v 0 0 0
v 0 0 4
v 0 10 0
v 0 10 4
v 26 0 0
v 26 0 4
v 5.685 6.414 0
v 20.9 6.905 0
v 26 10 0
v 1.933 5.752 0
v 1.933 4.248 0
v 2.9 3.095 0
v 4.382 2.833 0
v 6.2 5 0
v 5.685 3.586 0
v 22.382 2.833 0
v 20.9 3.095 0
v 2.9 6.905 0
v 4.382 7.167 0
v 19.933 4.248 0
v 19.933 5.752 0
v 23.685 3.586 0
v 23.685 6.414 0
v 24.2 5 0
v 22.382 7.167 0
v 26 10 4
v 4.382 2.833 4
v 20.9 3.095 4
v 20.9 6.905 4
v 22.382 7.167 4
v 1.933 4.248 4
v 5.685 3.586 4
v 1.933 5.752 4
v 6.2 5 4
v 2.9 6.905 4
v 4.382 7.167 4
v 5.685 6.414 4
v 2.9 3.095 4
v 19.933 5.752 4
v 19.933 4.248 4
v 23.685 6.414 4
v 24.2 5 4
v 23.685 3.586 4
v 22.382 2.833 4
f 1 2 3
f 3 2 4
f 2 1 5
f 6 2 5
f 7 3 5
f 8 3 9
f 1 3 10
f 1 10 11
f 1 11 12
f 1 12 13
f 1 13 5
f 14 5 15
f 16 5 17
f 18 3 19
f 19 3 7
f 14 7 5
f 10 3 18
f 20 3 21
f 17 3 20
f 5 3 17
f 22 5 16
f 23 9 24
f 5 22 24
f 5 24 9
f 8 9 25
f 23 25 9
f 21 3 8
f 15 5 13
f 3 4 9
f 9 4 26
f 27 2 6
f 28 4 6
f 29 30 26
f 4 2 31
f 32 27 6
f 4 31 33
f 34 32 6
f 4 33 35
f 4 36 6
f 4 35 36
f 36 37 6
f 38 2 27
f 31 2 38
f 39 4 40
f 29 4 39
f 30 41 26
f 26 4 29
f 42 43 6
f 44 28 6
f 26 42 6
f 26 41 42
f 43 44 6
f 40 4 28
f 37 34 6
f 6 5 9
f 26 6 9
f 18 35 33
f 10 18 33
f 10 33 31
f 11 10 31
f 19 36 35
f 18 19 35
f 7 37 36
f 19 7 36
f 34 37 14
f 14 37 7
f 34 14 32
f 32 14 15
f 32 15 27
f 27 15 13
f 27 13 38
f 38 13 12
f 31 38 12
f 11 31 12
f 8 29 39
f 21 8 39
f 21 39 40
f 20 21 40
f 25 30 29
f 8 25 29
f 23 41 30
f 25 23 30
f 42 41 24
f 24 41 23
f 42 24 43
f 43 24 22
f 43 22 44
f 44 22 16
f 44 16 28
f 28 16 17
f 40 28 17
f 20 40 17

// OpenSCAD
// file: configuration-metric.scad
// PRUSA Mendel  
// Metric Configuration file
// GNU GPL v2
// Josef Průša
// josefprusa@me.com
// prusadjs.cz
// http://www.reprap.org/wiki/Prusa_Mendel
// http://github.com/prusajr/PrusaMendel

// CONFIGURATION FILE FOR METRIC VARIANT OF PRUSA MENDEL

// M8 rod diameter
m8_diameter = 8.4;

// M8 nut diameter diameter
// Used for $fn nut trick -> cylinder(h = 5, r=m8_nut_diameter, $fn=6, center=true);
m8_nut_diameter = 16.4;

// M4 rod/screw diameter
m4_diameter = 5;

// M4 nut diameter
// Used for $fn nut trick -> cylinder(h = 5, r=m4_nut_diameter, $fn=6, center=true);
m4_nut_diameter = 9;

// M3 rod/screw diameter
m3_diameter = 4.4;

// M3 nut diameter diameter
// Used for $fn nut trick -> cylinder(h = 5, r=m3_nut_diameter, $fn=6, center=true);
m3_nut_diameter = 7;

// Bushing holders diameter
bushing_diameter = 11;

//Motor shaft diameter
motor_shaft=5;

//Bushings
	//Size of rod on which it will slide
	bushing_rodsize = 8;
	
	//Size of whole bushings (diameter because the core is cylinder)
	bushing_outerDiameter = 16;
	
	//How long they are going to be
	bushing_lenght = 11;
	
	// TYPE Can generate three versions
	// 1 - regular old ones
	// 2 - helical ones
	// 3 - holders for brass or any other bought bushings
	bushing_type = 2;
// file: configuration.scad
// PRUSA Mendel  
// Configuration file
// GNU GPL v2
// Josef Průša
// josefprusa@me.com
// prusadjs.cz
// http://www.reprap.org/wiki/Prusa_Mendel
// http://github.com/prusajr/PrusaMendel

// PLESE SELECT ONE OF THE CONFIGURATION FILES
// BY UN-COMMENTING IT

// METRIC VERSION
include <configuration-metric.scad>

// IMPERIAL VERSION (TODO, just place holder)
// Spacexula will do it ;-)
// include <configuration-imperial.scad>

// MINI-HUXLEY VERSION (TODO, just place holder)
// include <configuration-huxley.scad>

// MEGA VERSION (TODO, just place holder)
// include <configuration-mega.scad>
// main file
// PRUSA Mendel  
// Belt clamp
// GNU GPL v2
// Josef Průša
// josefprusa@me.com
// prusadjs.cz
// http://www.reprap.org/wiki/Prusa_Mendel
// http://github.com/prusajr/PrusaMendel

include <configuration.scad>

/**
 *@name Belt clamp
 */ 

module beltclamp(){
difference(){
cube([26,10,4]);
translate(v = [4, 5, 0]){
	cylinder(h=10, r=m3_diameter/2, $fn=9, center=true);
	translate(v = [18, 0, 0]) cylinder(h=10, r=m3_diameter/2, $fn=9, center=true);
}}
}
beltclamp();
